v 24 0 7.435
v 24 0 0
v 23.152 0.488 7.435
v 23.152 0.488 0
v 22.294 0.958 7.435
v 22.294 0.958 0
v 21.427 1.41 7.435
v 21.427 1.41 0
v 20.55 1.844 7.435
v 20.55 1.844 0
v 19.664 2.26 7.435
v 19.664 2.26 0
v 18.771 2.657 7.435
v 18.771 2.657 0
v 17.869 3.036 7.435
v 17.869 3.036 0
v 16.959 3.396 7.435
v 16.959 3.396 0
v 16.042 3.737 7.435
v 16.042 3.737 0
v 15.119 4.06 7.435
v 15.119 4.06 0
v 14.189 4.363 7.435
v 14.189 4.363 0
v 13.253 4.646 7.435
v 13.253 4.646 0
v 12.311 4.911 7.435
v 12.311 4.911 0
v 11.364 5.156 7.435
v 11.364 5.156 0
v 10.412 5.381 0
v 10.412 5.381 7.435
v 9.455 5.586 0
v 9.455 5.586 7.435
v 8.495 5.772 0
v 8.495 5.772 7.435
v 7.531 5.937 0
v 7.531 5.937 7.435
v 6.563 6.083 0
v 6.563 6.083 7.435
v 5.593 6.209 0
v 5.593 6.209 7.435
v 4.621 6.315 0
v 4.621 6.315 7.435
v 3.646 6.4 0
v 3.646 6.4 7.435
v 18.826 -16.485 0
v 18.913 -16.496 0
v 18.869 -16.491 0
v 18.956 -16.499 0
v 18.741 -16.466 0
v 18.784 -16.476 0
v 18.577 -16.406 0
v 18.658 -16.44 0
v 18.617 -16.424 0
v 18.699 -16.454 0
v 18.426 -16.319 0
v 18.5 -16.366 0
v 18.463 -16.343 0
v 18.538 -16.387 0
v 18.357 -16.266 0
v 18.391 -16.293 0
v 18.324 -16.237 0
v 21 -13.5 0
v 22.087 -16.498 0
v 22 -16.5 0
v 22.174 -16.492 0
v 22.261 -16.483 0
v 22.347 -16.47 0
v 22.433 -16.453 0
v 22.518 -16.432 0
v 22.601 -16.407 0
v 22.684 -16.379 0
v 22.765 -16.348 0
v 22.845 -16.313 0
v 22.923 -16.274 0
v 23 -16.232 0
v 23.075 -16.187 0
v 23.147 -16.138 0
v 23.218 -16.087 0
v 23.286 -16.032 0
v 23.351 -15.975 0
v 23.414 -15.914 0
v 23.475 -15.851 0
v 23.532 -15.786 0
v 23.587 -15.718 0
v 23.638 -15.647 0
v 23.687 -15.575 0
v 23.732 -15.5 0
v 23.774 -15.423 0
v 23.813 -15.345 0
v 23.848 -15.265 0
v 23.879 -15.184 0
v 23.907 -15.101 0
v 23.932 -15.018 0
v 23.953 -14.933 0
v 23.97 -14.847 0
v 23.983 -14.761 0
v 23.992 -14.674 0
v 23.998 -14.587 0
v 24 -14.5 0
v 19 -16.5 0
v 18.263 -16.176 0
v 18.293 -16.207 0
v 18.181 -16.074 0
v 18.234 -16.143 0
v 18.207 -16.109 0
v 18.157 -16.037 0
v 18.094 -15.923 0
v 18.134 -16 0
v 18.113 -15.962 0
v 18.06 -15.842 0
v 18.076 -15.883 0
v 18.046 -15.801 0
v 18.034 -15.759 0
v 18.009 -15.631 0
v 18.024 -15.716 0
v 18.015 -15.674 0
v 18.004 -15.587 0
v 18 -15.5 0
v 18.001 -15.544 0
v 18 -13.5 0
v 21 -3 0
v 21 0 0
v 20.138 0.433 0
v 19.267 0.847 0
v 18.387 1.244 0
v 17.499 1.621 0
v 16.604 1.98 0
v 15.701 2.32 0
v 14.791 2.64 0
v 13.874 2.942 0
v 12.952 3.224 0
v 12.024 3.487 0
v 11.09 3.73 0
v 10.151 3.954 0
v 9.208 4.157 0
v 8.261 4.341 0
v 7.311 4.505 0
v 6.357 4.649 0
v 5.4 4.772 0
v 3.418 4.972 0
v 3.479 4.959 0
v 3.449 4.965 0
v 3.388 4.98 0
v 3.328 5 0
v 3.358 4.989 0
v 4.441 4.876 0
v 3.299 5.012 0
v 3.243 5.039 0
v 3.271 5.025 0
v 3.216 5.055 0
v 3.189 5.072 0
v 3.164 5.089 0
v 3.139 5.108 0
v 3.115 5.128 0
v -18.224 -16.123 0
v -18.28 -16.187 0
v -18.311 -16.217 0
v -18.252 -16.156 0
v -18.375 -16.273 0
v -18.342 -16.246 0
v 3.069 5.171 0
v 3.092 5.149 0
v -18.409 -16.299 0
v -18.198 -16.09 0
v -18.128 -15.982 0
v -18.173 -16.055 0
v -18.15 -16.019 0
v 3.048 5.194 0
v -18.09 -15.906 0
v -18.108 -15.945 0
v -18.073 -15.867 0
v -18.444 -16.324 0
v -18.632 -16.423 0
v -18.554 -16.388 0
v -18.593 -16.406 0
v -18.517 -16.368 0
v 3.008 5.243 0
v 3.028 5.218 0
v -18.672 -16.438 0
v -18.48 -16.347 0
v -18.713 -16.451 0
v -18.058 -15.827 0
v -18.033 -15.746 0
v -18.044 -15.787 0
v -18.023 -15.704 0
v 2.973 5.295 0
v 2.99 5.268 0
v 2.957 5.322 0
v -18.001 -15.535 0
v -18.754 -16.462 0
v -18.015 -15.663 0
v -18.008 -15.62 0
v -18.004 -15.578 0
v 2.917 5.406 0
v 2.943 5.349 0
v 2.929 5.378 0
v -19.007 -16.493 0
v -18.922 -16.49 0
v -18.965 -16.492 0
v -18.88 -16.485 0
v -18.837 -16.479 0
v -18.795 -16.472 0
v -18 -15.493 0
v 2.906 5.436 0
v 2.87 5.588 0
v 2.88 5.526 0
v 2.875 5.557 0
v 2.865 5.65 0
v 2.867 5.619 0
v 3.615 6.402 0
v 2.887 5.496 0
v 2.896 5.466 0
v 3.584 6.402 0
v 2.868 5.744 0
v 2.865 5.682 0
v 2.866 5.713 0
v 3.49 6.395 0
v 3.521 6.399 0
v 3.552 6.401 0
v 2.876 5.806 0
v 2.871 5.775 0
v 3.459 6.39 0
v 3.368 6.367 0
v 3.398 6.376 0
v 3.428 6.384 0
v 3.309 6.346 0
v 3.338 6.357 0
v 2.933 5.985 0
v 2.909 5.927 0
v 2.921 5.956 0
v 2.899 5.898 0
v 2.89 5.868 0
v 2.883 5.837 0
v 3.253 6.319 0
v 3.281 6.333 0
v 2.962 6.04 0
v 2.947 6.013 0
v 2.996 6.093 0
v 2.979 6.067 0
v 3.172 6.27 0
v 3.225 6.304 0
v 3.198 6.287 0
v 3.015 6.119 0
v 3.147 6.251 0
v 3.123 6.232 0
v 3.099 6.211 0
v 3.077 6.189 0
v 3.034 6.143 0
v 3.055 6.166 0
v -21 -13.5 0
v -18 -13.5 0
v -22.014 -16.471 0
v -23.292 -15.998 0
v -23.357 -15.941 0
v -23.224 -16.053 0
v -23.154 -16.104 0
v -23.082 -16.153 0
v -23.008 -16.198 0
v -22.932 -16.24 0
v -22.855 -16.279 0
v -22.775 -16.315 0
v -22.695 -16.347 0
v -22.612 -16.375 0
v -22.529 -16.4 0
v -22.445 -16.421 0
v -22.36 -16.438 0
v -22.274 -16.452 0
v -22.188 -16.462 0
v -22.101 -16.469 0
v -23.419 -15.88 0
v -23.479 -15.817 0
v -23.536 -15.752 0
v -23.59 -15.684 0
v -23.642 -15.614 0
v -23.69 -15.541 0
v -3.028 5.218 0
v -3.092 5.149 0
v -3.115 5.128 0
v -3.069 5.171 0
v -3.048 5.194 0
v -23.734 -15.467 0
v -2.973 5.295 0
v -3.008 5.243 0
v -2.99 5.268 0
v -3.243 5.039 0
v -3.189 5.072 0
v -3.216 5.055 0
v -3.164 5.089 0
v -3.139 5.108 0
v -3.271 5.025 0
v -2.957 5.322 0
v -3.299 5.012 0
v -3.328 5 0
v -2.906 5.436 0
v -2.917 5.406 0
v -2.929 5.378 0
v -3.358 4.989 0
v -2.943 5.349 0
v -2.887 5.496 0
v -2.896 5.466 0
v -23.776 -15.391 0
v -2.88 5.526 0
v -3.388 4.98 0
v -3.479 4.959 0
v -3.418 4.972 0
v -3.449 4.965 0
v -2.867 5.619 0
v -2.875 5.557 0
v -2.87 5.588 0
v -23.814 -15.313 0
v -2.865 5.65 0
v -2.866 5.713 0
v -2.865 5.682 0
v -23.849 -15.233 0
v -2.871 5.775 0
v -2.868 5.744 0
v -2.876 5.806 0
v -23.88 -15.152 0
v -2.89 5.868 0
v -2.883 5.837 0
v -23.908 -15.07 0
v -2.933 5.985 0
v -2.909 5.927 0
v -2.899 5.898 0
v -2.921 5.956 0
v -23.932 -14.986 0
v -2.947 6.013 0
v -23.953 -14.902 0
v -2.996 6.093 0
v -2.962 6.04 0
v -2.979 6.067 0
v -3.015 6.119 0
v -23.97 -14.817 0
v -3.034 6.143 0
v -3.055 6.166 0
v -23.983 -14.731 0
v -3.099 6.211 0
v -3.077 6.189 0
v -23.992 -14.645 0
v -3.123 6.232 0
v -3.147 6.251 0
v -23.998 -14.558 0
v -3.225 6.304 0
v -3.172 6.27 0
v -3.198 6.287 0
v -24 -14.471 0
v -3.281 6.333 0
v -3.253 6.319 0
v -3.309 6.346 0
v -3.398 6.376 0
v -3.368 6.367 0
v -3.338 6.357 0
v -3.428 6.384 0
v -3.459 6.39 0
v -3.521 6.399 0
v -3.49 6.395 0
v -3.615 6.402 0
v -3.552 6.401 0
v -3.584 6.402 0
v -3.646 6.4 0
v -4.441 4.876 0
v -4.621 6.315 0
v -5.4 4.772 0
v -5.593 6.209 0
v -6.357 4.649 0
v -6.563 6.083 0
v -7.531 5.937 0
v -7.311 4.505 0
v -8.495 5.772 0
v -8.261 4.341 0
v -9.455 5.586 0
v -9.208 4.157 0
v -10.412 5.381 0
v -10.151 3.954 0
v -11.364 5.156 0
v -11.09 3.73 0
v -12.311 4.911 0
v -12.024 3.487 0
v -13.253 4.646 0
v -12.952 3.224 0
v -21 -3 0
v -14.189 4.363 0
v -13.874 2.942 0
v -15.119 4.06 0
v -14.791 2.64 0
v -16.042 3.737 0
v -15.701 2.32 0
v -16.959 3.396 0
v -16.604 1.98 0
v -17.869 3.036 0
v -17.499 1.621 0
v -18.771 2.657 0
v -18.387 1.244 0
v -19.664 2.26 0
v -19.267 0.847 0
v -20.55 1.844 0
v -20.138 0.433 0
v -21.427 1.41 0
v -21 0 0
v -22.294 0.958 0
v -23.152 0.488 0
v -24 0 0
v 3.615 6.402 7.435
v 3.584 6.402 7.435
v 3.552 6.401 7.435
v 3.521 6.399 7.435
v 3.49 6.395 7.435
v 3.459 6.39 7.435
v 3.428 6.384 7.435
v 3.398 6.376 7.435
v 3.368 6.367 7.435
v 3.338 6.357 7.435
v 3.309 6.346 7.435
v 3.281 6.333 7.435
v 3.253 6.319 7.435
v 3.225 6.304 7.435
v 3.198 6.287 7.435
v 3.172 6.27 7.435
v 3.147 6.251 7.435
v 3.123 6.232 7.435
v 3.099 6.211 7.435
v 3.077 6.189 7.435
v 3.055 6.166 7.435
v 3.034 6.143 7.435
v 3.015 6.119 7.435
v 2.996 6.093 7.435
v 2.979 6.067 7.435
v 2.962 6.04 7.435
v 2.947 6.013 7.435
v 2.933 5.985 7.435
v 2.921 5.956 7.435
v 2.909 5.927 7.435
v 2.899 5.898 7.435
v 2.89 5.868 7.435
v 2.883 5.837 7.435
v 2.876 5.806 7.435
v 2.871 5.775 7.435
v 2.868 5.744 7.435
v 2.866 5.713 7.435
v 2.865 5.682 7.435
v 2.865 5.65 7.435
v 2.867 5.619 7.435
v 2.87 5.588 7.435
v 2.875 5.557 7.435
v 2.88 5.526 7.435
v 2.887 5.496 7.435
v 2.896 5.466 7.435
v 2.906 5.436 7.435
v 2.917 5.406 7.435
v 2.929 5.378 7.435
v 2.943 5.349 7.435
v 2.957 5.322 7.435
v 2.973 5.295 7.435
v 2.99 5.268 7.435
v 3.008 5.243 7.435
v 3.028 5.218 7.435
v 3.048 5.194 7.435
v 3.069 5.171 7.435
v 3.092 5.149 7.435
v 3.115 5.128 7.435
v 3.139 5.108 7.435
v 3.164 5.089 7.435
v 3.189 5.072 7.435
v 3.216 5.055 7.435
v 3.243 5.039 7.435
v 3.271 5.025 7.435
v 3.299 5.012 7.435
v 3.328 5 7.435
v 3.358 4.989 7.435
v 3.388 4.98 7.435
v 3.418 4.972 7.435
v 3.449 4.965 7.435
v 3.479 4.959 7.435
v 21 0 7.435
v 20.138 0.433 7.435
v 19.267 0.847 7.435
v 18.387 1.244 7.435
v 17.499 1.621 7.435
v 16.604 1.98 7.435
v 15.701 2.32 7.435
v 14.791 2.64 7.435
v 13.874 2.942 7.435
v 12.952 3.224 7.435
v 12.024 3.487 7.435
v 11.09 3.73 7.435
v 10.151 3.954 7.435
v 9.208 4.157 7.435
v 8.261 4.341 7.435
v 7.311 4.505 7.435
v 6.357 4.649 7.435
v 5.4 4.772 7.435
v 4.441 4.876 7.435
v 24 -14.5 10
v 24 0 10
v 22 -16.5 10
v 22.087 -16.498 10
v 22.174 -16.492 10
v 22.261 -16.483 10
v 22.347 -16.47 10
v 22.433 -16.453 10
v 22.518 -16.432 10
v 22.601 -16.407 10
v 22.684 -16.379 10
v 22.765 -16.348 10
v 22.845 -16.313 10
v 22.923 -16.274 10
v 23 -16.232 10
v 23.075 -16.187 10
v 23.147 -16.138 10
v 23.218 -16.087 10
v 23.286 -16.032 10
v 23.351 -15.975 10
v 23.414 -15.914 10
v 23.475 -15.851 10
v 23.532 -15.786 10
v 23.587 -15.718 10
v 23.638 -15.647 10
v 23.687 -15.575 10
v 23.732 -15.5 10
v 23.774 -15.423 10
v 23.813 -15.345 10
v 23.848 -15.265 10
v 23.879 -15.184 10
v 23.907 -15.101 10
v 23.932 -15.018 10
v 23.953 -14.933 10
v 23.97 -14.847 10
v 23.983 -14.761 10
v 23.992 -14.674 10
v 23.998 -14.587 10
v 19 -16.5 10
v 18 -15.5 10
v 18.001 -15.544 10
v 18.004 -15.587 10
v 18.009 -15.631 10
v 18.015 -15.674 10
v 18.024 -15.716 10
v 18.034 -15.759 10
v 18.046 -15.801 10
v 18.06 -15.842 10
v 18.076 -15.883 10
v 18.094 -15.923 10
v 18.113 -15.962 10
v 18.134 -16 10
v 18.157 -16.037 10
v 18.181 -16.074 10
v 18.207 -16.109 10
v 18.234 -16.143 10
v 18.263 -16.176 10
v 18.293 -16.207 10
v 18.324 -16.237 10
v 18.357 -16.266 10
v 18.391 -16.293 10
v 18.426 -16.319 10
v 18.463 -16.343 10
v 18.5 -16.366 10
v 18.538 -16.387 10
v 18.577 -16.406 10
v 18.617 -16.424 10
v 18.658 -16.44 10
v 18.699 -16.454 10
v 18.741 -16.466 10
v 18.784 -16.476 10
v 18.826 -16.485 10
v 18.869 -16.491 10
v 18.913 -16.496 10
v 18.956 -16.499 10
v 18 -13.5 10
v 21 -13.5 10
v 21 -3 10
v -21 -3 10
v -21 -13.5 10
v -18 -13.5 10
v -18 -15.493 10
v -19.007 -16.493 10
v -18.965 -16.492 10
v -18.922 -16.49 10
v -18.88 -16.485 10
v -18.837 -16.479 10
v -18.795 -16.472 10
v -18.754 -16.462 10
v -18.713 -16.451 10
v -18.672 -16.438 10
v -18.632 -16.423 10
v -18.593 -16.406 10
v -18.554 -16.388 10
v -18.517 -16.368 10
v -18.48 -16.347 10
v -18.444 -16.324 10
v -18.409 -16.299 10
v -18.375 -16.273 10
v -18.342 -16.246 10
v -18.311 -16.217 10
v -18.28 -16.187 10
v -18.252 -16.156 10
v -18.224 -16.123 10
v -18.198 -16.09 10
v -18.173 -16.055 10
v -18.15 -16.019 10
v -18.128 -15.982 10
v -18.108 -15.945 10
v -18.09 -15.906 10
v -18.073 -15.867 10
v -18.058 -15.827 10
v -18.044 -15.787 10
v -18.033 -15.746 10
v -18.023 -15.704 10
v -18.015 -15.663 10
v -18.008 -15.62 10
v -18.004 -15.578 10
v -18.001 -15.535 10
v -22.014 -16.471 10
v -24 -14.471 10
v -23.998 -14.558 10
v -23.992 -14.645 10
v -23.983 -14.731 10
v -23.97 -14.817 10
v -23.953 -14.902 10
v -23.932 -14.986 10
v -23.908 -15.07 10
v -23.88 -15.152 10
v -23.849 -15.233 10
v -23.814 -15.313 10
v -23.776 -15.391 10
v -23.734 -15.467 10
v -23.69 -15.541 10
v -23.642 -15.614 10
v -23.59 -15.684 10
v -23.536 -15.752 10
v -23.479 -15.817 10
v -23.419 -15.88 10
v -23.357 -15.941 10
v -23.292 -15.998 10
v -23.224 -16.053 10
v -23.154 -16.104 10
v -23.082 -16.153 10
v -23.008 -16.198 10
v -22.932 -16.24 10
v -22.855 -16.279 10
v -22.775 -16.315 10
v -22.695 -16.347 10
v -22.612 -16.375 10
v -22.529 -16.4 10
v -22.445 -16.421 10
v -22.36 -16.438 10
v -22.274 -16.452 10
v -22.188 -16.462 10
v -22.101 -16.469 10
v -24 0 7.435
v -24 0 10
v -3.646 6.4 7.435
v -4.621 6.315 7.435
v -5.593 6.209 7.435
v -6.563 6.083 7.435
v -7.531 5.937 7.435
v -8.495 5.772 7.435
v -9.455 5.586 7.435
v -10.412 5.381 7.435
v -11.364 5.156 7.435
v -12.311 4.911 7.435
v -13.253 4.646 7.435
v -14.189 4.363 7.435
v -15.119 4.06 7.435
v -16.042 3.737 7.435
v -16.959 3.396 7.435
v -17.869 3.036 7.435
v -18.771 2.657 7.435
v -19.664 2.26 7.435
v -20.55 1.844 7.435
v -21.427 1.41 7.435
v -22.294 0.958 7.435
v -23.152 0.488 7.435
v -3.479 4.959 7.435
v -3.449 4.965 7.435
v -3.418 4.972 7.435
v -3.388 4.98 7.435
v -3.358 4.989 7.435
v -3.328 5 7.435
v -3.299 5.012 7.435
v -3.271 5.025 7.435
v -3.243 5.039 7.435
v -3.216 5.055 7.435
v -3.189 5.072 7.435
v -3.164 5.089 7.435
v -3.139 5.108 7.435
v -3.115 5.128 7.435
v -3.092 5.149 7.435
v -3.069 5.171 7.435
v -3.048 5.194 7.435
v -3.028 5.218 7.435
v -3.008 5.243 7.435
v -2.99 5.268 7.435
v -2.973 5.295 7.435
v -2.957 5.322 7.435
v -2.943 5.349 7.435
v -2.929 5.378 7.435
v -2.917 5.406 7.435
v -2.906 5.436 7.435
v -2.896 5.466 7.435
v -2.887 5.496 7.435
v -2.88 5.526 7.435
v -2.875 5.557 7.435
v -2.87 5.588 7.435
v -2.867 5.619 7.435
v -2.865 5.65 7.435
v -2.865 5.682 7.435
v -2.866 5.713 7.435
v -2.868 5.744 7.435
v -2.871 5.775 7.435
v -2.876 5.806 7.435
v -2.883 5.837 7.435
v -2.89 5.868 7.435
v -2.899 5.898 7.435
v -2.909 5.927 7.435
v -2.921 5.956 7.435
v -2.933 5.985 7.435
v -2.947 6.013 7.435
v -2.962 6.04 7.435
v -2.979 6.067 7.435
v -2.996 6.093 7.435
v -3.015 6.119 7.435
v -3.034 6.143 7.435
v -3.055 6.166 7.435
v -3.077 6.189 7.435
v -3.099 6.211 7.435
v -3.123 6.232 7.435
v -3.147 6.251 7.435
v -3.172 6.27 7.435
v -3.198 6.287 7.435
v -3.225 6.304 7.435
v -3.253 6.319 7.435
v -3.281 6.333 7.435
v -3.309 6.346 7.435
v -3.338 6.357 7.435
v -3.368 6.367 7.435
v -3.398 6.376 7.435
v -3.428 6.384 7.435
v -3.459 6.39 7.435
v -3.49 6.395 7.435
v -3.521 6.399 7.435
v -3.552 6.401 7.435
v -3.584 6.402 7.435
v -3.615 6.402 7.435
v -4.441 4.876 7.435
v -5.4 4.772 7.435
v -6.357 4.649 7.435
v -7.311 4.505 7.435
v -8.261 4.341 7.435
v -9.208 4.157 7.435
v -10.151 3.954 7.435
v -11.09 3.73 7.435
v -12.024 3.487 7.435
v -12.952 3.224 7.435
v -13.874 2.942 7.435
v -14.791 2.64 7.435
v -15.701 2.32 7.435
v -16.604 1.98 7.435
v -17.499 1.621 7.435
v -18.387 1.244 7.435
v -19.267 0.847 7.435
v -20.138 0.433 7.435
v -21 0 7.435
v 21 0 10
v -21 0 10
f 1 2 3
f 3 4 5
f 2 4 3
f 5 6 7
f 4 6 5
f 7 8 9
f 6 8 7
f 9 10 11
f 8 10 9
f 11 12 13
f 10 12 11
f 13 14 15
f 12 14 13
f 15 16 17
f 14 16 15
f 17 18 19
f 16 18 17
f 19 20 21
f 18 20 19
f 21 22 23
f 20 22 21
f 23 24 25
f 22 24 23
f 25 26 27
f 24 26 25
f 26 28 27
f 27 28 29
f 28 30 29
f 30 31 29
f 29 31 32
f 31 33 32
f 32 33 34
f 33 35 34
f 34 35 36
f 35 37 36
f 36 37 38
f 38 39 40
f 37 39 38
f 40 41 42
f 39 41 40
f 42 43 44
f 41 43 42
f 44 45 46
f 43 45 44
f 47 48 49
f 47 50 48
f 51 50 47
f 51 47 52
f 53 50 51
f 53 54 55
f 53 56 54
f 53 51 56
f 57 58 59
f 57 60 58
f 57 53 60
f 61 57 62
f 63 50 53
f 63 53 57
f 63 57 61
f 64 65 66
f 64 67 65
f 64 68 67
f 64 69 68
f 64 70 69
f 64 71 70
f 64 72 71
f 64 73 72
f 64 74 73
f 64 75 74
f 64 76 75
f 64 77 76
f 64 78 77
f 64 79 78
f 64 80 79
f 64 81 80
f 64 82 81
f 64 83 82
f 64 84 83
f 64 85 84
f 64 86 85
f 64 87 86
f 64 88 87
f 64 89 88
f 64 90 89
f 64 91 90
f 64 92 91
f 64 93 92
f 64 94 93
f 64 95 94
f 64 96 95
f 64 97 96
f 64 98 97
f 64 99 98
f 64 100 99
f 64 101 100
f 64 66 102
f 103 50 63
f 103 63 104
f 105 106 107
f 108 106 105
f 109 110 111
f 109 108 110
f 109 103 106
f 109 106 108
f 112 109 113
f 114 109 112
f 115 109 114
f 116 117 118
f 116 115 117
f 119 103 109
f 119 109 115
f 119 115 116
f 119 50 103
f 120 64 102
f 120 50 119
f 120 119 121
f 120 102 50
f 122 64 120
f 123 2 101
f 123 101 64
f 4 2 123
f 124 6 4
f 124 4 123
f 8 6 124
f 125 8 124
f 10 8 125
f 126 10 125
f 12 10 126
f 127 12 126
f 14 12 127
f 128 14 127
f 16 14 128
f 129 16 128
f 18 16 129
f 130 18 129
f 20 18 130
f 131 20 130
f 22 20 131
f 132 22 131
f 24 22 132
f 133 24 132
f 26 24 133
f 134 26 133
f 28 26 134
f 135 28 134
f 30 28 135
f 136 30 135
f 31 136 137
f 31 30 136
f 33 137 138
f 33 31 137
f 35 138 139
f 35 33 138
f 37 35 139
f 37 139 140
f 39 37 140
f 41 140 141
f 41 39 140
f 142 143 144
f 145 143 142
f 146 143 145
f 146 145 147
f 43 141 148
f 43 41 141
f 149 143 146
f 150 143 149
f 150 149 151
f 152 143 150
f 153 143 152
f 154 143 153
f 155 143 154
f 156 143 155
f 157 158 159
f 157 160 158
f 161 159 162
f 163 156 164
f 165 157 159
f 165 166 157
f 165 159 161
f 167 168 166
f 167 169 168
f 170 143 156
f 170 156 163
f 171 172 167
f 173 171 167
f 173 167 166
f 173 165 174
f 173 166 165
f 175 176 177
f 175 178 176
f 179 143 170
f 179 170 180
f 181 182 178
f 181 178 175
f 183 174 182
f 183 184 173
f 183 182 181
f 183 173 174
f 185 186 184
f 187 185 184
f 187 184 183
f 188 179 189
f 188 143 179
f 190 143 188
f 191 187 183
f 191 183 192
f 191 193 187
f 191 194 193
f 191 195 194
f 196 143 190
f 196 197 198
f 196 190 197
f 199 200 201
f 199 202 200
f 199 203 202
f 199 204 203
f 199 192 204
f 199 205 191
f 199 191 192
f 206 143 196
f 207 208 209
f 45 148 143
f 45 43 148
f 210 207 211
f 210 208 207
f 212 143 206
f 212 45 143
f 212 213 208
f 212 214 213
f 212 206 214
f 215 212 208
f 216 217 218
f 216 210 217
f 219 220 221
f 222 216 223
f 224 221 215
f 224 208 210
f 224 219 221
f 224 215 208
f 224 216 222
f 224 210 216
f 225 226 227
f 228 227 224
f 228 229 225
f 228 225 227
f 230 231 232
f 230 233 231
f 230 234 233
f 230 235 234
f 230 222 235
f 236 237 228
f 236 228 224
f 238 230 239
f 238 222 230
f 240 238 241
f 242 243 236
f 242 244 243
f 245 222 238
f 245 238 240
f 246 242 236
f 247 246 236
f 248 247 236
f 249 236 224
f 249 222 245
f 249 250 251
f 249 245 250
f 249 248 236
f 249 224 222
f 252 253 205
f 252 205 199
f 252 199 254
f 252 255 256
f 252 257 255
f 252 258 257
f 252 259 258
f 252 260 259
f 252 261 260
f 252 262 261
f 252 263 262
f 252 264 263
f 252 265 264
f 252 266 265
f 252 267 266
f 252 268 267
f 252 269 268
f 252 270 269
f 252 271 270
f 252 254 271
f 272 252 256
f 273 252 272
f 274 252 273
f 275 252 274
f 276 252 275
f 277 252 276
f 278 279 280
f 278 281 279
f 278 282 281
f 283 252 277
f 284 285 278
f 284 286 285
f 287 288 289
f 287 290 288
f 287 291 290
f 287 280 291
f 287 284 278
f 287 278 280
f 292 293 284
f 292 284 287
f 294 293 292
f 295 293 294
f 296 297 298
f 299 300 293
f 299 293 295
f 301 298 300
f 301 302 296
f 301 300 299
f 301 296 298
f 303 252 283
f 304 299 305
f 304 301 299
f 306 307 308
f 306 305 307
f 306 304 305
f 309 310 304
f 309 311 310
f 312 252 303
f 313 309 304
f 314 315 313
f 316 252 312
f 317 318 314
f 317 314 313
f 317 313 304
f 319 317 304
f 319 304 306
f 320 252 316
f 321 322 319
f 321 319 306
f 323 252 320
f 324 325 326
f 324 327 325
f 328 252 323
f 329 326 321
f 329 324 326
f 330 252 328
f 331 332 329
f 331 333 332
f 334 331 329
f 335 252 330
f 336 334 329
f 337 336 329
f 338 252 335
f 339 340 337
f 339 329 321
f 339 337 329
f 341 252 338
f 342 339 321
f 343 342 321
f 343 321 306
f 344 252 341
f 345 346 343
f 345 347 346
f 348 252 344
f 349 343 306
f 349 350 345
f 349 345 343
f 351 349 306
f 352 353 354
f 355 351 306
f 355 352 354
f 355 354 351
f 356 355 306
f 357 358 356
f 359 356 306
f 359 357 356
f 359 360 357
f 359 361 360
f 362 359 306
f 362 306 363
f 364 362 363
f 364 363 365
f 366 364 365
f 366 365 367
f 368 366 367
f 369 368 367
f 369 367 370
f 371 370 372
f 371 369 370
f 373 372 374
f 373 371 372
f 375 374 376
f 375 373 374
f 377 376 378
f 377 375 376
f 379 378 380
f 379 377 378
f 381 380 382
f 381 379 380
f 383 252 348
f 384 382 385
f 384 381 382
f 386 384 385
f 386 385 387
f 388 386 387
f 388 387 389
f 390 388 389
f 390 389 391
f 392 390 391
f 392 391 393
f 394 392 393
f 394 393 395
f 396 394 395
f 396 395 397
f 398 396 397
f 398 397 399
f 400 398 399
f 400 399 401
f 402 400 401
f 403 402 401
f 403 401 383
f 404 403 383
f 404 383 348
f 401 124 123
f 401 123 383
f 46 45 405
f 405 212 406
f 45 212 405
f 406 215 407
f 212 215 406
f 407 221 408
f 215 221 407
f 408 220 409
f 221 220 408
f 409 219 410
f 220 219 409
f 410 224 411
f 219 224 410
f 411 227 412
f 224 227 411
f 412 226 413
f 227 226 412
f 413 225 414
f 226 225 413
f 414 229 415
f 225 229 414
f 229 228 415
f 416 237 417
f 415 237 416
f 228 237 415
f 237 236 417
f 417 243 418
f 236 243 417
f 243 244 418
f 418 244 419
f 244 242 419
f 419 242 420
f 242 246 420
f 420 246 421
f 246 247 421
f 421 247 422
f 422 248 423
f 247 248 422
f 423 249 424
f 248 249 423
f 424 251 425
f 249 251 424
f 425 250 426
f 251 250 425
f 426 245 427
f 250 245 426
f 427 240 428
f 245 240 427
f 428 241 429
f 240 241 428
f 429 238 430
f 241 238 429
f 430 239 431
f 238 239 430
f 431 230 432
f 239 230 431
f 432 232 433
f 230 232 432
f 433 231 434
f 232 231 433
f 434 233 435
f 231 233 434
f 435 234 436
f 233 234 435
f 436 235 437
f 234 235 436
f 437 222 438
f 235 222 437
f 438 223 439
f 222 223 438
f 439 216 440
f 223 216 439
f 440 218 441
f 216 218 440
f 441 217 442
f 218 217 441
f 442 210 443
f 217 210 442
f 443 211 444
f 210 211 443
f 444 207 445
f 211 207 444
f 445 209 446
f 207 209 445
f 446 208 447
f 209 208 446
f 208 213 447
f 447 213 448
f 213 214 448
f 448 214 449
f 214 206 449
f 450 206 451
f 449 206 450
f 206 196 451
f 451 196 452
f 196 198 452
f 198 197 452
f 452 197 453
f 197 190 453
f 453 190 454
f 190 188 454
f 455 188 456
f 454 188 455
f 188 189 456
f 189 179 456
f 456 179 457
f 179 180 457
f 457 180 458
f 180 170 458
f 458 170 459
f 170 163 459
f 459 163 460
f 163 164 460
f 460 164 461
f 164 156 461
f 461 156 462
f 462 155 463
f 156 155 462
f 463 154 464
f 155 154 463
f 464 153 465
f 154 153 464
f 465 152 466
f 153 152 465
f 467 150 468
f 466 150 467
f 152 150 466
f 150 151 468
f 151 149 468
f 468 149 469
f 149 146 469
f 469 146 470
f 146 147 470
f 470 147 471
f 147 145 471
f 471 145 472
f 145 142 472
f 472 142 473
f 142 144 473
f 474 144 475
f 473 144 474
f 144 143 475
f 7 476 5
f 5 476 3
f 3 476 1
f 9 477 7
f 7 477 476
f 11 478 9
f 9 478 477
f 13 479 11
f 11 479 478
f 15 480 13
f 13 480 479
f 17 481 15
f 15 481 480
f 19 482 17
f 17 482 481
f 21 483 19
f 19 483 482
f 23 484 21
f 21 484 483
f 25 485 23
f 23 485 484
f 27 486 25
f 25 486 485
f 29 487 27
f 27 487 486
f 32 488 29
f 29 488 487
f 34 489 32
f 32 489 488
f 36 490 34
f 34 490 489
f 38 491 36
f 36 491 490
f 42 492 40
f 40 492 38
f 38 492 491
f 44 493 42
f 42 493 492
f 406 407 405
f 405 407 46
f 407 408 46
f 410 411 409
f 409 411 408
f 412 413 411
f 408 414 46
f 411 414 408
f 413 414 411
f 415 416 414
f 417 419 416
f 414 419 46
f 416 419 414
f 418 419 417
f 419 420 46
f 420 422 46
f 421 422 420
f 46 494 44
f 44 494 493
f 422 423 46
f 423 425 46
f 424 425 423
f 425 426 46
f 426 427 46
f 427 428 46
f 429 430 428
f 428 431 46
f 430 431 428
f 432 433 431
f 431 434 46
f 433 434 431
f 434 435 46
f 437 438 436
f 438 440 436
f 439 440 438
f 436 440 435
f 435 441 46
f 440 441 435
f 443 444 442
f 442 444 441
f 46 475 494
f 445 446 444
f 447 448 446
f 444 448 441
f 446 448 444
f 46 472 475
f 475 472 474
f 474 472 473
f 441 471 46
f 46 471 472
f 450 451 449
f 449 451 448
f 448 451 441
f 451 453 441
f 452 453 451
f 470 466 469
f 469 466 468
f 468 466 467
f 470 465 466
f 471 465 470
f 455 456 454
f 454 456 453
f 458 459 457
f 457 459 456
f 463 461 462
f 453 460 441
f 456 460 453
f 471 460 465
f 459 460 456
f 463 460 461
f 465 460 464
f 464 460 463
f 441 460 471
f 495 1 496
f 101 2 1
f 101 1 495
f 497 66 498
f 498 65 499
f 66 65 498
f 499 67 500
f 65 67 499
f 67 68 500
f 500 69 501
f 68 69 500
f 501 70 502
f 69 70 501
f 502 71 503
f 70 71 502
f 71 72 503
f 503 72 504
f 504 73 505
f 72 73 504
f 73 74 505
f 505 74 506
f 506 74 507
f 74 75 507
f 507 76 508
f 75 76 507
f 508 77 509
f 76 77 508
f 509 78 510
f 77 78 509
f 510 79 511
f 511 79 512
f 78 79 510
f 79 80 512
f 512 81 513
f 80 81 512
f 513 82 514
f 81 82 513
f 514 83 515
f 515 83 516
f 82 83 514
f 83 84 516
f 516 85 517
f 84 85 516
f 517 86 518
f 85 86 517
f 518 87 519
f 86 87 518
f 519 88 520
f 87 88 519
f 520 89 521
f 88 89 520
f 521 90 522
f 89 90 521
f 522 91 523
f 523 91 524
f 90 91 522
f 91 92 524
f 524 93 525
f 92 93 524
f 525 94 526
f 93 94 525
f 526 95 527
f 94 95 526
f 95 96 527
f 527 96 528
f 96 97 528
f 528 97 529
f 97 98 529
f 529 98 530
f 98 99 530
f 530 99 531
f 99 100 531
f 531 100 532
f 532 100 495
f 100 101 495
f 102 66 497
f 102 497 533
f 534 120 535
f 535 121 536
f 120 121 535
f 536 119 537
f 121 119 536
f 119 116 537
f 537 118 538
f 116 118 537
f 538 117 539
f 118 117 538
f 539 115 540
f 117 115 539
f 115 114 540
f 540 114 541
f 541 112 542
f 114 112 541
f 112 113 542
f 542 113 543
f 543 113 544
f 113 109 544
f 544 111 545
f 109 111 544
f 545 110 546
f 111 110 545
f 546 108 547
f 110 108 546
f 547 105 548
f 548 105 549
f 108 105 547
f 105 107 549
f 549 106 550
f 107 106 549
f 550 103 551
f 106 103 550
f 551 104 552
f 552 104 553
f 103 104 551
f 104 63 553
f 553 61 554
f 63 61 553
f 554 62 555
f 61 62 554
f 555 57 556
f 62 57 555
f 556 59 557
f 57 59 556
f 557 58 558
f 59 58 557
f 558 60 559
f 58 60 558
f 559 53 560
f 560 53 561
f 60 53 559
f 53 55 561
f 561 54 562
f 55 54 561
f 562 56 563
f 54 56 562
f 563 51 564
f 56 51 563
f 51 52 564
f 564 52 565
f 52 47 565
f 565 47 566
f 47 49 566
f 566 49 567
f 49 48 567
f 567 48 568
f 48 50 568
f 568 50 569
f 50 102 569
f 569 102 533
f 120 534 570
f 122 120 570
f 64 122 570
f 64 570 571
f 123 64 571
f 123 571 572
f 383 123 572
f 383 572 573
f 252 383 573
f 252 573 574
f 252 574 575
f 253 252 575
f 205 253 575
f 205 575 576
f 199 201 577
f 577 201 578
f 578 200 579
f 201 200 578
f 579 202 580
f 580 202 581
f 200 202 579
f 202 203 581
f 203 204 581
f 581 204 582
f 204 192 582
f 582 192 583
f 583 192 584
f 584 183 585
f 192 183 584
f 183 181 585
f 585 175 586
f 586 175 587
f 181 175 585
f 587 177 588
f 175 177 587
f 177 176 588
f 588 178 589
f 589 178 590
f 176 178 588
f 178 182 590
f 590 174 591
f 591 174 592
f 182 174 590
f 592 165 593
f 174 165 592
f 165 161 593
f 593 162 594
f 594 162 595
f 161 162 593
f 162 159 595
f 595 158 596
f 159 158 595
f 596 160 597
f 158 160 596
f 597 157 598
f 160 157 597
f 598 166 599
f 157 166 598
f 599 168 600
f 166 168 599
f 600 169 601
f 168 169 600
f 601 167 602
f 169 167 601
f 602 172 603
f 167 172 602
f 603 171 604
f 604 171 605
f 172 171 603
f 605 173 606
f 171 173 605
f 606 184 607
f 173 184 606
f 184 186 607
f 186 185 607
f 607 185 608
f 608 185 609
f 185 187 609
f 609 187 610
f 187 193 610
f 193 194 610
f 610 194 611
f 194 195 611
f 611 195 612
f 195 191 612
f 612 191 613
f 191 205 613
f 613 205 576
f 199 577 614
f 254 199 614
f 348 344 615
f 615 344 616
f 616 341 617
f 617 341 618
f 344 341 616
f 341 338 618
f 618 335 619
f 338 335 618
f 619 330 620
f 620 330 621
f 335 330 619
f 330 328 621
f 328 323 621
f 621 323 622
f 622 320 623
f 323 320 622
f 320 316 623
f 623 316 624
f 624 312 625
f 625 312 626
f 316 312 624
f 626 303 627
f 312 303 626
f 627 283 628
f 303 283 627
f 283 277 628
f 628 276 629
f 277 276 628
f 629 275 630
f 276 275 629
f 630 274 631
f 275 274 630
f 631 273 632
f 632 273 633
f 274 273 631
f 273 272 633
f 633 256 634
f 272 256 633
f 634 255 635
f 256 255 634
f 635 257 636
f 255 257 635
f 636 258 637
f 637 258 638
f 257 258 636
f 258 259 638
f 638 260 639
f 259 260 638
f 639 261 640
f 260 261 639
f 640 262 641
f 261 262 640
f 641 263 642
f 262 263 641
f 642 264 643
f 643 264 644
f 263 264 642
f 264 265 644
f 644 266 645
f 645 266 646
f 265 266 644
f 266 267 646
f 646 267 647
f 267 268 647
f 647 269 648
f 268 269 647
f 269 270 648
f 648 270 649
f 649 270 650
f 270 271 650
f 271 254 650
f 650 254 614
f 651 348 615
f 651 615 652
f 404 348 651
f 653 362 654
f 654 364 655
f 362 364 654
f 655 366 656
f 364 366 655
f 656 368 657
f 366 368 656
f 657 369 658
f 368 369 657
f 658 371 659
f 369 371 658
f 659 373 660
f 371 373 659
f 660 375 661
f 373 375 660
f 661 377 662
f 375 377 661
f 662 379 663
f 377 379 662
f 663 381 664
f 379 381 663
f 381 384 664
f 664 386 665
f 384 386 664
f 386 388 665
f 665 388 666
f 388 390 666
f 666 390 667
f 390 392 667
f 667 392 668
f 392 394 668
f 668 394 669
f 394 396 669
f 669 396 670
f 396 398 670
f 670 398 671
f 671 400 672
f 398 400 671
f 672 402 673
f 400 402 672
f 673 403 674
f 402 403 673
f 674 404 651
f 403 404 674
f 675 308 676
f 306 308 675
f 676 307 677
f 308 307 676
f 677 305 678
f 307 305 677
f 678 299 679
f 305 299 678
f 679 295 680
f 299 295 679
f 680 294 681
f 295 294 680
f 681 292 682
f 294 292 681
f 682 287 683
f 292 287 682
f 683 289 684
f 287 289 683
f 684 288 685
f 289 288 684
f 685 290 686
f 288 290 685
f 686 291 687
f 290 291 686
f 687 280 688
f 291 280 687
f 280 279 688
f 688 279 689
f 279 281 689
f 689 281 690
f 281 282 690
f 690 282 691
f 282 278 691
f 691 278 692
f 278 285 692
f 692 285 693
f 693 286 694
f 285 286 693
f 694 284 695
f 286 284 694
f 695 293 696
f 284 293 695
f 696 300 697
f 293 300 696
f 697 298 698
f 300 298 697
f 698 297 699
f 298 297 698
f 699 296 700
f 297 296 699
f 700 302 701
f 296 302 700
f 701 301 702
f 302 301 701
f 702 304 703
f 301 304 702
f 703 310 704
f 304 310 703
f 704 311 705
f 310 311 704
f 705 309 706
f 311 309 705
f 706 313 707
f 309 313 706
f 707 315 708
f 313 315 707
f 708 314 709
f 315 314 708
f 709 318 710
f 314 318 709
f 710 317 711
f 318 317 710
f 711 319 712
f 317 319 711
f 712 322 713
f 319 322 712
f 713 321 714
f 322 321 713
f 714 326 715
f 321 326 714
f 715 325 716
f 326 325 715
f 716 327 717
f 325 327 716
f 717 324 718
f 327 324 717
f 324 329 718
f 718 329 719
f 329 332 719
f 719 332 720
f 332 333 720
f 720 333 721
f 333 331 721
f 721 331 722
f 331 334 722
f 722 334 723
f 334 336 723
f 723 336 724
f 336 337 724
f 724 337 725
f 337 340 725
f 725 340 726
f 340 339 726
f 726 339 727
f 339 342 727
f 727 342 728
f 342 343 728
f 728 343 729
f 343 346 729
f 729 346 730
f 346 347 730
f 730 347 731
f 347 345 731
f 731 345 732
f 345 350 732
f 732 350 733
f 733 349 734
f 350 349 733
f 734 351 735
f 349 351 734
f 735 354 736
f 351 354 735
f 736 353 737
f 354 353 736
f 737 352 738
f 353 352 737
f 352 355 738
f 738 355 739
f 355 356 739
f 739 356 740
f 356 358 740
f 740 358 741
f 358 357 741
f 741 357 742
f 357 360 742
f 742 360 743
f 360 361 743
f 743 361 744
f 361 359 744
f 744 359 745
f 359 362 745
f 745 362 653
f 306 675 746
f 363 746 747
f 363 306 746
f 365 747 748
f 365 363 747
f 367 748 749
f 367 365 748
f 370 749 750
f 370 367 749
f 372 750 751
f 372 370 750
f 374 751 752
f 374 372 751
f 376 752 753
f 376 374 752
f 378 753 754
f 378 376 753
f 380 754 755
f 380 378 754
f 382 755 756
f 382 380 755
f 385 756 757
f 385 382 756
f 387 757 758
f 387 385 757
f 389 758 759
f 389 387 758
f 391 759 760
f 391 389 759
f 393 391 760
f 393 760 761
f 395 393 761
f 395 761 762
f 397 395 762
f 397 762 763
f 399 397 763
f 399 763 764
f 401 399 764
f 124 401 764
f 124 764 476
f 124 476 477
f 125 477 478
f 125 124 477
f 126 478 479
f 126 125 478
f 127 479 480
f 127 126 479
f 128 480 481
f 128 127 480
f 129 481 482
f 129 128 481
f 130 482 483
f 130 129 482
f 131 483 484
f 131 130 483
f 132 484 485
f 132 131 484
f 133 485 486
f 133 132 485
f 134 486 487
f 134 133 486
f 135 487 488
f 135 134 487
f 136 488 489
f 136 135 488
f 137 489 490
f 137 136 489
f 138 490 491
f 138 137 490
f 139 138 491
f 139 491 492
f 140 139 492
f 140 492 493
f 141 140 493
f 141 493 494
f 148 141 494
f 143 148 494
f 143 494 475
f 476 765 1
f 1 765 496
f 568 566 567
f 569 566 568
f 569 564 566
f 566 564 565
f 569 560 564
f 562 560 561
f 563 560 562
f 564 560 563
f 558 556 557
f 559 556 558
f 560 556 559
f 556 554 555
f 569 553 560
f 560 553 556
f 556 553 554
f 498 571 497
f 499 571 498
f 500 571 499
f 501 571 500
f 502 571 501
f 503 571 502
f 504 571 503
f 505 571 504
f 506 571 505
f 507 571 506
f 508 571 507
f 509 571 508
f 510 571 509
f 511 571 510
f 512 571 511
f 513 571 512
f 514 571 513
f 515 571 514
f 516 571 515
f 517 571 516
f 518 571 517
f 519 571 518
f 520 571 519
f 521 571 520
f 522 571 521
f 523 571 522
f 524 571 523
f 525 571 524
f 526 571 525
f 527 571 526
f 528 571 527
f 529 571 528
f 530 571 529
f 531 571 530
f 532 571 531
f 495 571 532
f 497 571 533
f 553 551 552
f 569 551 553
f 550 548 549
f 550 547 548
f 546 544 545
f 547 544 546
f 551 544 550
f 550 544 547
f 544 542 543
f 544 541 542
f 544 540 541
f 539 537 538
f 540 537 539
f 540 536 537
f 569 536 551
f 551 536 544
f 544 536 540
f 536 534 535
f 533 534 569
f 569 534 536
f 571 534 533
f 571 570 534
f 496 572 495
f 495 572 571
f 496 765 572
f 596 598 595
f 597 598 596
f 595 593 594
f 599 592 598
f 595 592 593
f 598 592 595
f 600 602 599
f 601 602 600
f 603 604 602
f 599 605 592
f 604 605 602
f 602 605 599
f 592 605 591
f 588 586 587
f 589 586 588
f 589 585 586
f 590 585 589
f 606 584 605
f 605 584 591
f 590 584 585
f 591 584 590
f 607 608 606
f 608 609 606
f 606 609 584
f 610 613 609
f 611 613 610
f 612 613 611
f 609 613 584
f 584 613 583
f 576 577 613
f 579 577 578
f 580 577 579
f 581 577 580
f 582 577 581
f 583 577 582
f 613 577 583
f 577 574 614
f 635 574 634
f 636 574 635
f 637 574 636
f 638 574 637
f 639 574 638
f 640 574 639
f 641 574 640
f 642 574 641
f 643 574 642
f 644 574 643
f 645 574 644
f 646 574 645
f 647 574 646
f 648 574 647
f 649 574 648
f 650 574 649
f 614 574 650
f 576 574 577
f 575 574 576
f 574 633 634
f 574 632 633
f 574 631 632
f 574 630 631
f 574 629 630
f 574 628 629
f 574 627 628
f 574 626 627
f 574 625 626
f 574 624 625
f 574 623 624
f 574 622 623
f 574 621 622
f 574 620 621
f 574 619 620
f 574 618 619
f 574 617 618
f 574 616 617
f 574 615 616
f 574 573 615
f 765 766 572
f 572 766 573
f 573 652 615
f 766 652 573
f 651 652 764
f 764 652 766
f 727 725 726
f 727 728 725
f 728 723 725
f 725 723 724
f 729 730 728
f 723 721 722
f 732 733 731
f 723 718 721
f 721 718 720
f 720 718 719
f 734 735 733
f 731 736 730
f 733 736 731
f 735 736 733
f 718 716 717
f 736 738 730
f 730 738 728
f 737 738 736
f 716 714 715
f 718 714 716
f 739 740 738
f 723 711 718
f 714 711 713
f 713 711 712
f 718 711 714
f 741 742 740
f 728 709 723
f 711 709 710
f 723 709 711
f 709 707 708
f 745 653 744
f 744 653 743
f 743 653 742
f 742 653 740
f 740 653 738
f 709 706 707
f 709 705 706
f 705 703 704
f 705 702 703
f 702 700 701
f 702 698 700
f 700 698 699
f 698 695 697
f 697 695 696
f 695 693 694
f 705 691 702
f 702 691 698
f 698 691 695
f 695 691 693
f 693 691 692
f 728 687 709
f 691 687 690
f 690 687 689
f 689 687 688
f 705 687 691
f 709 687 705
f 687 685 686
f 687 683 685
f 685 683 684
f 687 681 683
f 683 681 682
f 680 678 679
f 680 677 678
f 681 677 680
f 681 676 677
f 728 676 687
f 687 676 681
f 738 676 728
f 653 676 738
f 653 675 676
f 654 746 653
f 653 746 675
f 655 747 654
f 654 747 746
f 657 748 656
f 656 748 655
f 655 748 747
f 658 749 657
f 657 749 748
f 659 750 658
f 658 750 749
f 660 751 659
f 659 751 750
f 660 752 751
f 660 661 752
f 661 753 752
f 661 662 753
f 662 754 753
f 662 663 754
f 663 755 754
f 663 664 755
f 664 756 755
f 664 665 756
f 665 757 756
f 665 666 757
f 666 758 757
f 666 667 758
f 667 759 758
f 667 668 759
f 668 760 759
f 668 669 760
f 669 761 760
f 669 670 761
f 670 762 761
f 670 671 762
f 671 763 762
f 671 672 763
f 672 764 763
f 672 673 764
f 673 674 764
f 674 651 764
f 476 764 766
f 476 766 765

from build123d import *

# Parameters (mm, degrees)
PAD_DEPTH    = 10
SKETCH001_W  = 9.110509
SKETCH001_H  = 17.177114
POCKET_DEPTH = 48.001


with BuildPart() as part:
    # Sketch → Pad (new body)
    with BuildSketch(Plane.XY):
        with BuildLine():
            Line((24, 0), (24, -14.5))
            ThreePointArc((22, -16.5), (23.414214, -15.914214), (24, -14.5))
            Line((22, -16.5), (19, -16.5))
            ThreePointArc((18, -15.5), (18.292893, -16.207107), (19, -16.5))
            Line((18, -15.5), (18, -13.5))
            Line((18, -13.5), (21, -13.5))
            Line((21, -13.5), (21, -3))
            Line((21, -3), (-21, -3))
            Line((-21, -3), (-21, -13.5))
            Line((-21, -13.5), (-18, -13.5))
            Line((-18, -13.5), (-18, -15.492764))
            ThreePointArc((-19.00721, -16.492738), (-18.295447, -16.202415), (-18, -15.492764))
            Line((-19.00721, -16.492738), (-22.01442, -16.471056))
            ThreePointArc((-24, -14.471108), (-23.419303, -15.880214), (-22.01442, -16.471056))
            Line((-24, -14.471108), (-24, 0))
            ThreePointArc((-3.646217, 6.4), (-14.188669, 4.362584), (-24, 0))
            ThreePointArc((-3.479417, 4.95934), (-2.869427, 5.759951), (-3.646217, 6.4))
            ThreePointArc((-3.479417, 4.95934), (-12.488364, 3.35813), (-21, 0))
            Line((-21, 0), (21, 0))
            ThreePointArc((21, 0), (12.488364, 3.35813), (3.479417, 4.95934))
            ThreePointArc((3.646217, 6.4), (2.869427, 5.759951), (3.479417, 4.95934))
            ThreePointArc((24, 0), (14.188669, 4.362584), (3.646217, 6.4))
        make_face()
    extrude(amount=PAD_DEPTH)

    # Sketch001 (on Face16 of Pad) → Pocket (cut, through all)
    with BuildSketch(Plane(origin=(-24, 0, 0), x_dir=(0, -1, 0), z_dir=(-1, 0, 0))):
        with Locations((-4.555255, 16.023105)):
            Rectangle(SKETCH001_W, SKETCH001_H)
    extrude(amount=-POCKET_DEPTH, mode=Mode.SUBTRACT)


solid = part.part
